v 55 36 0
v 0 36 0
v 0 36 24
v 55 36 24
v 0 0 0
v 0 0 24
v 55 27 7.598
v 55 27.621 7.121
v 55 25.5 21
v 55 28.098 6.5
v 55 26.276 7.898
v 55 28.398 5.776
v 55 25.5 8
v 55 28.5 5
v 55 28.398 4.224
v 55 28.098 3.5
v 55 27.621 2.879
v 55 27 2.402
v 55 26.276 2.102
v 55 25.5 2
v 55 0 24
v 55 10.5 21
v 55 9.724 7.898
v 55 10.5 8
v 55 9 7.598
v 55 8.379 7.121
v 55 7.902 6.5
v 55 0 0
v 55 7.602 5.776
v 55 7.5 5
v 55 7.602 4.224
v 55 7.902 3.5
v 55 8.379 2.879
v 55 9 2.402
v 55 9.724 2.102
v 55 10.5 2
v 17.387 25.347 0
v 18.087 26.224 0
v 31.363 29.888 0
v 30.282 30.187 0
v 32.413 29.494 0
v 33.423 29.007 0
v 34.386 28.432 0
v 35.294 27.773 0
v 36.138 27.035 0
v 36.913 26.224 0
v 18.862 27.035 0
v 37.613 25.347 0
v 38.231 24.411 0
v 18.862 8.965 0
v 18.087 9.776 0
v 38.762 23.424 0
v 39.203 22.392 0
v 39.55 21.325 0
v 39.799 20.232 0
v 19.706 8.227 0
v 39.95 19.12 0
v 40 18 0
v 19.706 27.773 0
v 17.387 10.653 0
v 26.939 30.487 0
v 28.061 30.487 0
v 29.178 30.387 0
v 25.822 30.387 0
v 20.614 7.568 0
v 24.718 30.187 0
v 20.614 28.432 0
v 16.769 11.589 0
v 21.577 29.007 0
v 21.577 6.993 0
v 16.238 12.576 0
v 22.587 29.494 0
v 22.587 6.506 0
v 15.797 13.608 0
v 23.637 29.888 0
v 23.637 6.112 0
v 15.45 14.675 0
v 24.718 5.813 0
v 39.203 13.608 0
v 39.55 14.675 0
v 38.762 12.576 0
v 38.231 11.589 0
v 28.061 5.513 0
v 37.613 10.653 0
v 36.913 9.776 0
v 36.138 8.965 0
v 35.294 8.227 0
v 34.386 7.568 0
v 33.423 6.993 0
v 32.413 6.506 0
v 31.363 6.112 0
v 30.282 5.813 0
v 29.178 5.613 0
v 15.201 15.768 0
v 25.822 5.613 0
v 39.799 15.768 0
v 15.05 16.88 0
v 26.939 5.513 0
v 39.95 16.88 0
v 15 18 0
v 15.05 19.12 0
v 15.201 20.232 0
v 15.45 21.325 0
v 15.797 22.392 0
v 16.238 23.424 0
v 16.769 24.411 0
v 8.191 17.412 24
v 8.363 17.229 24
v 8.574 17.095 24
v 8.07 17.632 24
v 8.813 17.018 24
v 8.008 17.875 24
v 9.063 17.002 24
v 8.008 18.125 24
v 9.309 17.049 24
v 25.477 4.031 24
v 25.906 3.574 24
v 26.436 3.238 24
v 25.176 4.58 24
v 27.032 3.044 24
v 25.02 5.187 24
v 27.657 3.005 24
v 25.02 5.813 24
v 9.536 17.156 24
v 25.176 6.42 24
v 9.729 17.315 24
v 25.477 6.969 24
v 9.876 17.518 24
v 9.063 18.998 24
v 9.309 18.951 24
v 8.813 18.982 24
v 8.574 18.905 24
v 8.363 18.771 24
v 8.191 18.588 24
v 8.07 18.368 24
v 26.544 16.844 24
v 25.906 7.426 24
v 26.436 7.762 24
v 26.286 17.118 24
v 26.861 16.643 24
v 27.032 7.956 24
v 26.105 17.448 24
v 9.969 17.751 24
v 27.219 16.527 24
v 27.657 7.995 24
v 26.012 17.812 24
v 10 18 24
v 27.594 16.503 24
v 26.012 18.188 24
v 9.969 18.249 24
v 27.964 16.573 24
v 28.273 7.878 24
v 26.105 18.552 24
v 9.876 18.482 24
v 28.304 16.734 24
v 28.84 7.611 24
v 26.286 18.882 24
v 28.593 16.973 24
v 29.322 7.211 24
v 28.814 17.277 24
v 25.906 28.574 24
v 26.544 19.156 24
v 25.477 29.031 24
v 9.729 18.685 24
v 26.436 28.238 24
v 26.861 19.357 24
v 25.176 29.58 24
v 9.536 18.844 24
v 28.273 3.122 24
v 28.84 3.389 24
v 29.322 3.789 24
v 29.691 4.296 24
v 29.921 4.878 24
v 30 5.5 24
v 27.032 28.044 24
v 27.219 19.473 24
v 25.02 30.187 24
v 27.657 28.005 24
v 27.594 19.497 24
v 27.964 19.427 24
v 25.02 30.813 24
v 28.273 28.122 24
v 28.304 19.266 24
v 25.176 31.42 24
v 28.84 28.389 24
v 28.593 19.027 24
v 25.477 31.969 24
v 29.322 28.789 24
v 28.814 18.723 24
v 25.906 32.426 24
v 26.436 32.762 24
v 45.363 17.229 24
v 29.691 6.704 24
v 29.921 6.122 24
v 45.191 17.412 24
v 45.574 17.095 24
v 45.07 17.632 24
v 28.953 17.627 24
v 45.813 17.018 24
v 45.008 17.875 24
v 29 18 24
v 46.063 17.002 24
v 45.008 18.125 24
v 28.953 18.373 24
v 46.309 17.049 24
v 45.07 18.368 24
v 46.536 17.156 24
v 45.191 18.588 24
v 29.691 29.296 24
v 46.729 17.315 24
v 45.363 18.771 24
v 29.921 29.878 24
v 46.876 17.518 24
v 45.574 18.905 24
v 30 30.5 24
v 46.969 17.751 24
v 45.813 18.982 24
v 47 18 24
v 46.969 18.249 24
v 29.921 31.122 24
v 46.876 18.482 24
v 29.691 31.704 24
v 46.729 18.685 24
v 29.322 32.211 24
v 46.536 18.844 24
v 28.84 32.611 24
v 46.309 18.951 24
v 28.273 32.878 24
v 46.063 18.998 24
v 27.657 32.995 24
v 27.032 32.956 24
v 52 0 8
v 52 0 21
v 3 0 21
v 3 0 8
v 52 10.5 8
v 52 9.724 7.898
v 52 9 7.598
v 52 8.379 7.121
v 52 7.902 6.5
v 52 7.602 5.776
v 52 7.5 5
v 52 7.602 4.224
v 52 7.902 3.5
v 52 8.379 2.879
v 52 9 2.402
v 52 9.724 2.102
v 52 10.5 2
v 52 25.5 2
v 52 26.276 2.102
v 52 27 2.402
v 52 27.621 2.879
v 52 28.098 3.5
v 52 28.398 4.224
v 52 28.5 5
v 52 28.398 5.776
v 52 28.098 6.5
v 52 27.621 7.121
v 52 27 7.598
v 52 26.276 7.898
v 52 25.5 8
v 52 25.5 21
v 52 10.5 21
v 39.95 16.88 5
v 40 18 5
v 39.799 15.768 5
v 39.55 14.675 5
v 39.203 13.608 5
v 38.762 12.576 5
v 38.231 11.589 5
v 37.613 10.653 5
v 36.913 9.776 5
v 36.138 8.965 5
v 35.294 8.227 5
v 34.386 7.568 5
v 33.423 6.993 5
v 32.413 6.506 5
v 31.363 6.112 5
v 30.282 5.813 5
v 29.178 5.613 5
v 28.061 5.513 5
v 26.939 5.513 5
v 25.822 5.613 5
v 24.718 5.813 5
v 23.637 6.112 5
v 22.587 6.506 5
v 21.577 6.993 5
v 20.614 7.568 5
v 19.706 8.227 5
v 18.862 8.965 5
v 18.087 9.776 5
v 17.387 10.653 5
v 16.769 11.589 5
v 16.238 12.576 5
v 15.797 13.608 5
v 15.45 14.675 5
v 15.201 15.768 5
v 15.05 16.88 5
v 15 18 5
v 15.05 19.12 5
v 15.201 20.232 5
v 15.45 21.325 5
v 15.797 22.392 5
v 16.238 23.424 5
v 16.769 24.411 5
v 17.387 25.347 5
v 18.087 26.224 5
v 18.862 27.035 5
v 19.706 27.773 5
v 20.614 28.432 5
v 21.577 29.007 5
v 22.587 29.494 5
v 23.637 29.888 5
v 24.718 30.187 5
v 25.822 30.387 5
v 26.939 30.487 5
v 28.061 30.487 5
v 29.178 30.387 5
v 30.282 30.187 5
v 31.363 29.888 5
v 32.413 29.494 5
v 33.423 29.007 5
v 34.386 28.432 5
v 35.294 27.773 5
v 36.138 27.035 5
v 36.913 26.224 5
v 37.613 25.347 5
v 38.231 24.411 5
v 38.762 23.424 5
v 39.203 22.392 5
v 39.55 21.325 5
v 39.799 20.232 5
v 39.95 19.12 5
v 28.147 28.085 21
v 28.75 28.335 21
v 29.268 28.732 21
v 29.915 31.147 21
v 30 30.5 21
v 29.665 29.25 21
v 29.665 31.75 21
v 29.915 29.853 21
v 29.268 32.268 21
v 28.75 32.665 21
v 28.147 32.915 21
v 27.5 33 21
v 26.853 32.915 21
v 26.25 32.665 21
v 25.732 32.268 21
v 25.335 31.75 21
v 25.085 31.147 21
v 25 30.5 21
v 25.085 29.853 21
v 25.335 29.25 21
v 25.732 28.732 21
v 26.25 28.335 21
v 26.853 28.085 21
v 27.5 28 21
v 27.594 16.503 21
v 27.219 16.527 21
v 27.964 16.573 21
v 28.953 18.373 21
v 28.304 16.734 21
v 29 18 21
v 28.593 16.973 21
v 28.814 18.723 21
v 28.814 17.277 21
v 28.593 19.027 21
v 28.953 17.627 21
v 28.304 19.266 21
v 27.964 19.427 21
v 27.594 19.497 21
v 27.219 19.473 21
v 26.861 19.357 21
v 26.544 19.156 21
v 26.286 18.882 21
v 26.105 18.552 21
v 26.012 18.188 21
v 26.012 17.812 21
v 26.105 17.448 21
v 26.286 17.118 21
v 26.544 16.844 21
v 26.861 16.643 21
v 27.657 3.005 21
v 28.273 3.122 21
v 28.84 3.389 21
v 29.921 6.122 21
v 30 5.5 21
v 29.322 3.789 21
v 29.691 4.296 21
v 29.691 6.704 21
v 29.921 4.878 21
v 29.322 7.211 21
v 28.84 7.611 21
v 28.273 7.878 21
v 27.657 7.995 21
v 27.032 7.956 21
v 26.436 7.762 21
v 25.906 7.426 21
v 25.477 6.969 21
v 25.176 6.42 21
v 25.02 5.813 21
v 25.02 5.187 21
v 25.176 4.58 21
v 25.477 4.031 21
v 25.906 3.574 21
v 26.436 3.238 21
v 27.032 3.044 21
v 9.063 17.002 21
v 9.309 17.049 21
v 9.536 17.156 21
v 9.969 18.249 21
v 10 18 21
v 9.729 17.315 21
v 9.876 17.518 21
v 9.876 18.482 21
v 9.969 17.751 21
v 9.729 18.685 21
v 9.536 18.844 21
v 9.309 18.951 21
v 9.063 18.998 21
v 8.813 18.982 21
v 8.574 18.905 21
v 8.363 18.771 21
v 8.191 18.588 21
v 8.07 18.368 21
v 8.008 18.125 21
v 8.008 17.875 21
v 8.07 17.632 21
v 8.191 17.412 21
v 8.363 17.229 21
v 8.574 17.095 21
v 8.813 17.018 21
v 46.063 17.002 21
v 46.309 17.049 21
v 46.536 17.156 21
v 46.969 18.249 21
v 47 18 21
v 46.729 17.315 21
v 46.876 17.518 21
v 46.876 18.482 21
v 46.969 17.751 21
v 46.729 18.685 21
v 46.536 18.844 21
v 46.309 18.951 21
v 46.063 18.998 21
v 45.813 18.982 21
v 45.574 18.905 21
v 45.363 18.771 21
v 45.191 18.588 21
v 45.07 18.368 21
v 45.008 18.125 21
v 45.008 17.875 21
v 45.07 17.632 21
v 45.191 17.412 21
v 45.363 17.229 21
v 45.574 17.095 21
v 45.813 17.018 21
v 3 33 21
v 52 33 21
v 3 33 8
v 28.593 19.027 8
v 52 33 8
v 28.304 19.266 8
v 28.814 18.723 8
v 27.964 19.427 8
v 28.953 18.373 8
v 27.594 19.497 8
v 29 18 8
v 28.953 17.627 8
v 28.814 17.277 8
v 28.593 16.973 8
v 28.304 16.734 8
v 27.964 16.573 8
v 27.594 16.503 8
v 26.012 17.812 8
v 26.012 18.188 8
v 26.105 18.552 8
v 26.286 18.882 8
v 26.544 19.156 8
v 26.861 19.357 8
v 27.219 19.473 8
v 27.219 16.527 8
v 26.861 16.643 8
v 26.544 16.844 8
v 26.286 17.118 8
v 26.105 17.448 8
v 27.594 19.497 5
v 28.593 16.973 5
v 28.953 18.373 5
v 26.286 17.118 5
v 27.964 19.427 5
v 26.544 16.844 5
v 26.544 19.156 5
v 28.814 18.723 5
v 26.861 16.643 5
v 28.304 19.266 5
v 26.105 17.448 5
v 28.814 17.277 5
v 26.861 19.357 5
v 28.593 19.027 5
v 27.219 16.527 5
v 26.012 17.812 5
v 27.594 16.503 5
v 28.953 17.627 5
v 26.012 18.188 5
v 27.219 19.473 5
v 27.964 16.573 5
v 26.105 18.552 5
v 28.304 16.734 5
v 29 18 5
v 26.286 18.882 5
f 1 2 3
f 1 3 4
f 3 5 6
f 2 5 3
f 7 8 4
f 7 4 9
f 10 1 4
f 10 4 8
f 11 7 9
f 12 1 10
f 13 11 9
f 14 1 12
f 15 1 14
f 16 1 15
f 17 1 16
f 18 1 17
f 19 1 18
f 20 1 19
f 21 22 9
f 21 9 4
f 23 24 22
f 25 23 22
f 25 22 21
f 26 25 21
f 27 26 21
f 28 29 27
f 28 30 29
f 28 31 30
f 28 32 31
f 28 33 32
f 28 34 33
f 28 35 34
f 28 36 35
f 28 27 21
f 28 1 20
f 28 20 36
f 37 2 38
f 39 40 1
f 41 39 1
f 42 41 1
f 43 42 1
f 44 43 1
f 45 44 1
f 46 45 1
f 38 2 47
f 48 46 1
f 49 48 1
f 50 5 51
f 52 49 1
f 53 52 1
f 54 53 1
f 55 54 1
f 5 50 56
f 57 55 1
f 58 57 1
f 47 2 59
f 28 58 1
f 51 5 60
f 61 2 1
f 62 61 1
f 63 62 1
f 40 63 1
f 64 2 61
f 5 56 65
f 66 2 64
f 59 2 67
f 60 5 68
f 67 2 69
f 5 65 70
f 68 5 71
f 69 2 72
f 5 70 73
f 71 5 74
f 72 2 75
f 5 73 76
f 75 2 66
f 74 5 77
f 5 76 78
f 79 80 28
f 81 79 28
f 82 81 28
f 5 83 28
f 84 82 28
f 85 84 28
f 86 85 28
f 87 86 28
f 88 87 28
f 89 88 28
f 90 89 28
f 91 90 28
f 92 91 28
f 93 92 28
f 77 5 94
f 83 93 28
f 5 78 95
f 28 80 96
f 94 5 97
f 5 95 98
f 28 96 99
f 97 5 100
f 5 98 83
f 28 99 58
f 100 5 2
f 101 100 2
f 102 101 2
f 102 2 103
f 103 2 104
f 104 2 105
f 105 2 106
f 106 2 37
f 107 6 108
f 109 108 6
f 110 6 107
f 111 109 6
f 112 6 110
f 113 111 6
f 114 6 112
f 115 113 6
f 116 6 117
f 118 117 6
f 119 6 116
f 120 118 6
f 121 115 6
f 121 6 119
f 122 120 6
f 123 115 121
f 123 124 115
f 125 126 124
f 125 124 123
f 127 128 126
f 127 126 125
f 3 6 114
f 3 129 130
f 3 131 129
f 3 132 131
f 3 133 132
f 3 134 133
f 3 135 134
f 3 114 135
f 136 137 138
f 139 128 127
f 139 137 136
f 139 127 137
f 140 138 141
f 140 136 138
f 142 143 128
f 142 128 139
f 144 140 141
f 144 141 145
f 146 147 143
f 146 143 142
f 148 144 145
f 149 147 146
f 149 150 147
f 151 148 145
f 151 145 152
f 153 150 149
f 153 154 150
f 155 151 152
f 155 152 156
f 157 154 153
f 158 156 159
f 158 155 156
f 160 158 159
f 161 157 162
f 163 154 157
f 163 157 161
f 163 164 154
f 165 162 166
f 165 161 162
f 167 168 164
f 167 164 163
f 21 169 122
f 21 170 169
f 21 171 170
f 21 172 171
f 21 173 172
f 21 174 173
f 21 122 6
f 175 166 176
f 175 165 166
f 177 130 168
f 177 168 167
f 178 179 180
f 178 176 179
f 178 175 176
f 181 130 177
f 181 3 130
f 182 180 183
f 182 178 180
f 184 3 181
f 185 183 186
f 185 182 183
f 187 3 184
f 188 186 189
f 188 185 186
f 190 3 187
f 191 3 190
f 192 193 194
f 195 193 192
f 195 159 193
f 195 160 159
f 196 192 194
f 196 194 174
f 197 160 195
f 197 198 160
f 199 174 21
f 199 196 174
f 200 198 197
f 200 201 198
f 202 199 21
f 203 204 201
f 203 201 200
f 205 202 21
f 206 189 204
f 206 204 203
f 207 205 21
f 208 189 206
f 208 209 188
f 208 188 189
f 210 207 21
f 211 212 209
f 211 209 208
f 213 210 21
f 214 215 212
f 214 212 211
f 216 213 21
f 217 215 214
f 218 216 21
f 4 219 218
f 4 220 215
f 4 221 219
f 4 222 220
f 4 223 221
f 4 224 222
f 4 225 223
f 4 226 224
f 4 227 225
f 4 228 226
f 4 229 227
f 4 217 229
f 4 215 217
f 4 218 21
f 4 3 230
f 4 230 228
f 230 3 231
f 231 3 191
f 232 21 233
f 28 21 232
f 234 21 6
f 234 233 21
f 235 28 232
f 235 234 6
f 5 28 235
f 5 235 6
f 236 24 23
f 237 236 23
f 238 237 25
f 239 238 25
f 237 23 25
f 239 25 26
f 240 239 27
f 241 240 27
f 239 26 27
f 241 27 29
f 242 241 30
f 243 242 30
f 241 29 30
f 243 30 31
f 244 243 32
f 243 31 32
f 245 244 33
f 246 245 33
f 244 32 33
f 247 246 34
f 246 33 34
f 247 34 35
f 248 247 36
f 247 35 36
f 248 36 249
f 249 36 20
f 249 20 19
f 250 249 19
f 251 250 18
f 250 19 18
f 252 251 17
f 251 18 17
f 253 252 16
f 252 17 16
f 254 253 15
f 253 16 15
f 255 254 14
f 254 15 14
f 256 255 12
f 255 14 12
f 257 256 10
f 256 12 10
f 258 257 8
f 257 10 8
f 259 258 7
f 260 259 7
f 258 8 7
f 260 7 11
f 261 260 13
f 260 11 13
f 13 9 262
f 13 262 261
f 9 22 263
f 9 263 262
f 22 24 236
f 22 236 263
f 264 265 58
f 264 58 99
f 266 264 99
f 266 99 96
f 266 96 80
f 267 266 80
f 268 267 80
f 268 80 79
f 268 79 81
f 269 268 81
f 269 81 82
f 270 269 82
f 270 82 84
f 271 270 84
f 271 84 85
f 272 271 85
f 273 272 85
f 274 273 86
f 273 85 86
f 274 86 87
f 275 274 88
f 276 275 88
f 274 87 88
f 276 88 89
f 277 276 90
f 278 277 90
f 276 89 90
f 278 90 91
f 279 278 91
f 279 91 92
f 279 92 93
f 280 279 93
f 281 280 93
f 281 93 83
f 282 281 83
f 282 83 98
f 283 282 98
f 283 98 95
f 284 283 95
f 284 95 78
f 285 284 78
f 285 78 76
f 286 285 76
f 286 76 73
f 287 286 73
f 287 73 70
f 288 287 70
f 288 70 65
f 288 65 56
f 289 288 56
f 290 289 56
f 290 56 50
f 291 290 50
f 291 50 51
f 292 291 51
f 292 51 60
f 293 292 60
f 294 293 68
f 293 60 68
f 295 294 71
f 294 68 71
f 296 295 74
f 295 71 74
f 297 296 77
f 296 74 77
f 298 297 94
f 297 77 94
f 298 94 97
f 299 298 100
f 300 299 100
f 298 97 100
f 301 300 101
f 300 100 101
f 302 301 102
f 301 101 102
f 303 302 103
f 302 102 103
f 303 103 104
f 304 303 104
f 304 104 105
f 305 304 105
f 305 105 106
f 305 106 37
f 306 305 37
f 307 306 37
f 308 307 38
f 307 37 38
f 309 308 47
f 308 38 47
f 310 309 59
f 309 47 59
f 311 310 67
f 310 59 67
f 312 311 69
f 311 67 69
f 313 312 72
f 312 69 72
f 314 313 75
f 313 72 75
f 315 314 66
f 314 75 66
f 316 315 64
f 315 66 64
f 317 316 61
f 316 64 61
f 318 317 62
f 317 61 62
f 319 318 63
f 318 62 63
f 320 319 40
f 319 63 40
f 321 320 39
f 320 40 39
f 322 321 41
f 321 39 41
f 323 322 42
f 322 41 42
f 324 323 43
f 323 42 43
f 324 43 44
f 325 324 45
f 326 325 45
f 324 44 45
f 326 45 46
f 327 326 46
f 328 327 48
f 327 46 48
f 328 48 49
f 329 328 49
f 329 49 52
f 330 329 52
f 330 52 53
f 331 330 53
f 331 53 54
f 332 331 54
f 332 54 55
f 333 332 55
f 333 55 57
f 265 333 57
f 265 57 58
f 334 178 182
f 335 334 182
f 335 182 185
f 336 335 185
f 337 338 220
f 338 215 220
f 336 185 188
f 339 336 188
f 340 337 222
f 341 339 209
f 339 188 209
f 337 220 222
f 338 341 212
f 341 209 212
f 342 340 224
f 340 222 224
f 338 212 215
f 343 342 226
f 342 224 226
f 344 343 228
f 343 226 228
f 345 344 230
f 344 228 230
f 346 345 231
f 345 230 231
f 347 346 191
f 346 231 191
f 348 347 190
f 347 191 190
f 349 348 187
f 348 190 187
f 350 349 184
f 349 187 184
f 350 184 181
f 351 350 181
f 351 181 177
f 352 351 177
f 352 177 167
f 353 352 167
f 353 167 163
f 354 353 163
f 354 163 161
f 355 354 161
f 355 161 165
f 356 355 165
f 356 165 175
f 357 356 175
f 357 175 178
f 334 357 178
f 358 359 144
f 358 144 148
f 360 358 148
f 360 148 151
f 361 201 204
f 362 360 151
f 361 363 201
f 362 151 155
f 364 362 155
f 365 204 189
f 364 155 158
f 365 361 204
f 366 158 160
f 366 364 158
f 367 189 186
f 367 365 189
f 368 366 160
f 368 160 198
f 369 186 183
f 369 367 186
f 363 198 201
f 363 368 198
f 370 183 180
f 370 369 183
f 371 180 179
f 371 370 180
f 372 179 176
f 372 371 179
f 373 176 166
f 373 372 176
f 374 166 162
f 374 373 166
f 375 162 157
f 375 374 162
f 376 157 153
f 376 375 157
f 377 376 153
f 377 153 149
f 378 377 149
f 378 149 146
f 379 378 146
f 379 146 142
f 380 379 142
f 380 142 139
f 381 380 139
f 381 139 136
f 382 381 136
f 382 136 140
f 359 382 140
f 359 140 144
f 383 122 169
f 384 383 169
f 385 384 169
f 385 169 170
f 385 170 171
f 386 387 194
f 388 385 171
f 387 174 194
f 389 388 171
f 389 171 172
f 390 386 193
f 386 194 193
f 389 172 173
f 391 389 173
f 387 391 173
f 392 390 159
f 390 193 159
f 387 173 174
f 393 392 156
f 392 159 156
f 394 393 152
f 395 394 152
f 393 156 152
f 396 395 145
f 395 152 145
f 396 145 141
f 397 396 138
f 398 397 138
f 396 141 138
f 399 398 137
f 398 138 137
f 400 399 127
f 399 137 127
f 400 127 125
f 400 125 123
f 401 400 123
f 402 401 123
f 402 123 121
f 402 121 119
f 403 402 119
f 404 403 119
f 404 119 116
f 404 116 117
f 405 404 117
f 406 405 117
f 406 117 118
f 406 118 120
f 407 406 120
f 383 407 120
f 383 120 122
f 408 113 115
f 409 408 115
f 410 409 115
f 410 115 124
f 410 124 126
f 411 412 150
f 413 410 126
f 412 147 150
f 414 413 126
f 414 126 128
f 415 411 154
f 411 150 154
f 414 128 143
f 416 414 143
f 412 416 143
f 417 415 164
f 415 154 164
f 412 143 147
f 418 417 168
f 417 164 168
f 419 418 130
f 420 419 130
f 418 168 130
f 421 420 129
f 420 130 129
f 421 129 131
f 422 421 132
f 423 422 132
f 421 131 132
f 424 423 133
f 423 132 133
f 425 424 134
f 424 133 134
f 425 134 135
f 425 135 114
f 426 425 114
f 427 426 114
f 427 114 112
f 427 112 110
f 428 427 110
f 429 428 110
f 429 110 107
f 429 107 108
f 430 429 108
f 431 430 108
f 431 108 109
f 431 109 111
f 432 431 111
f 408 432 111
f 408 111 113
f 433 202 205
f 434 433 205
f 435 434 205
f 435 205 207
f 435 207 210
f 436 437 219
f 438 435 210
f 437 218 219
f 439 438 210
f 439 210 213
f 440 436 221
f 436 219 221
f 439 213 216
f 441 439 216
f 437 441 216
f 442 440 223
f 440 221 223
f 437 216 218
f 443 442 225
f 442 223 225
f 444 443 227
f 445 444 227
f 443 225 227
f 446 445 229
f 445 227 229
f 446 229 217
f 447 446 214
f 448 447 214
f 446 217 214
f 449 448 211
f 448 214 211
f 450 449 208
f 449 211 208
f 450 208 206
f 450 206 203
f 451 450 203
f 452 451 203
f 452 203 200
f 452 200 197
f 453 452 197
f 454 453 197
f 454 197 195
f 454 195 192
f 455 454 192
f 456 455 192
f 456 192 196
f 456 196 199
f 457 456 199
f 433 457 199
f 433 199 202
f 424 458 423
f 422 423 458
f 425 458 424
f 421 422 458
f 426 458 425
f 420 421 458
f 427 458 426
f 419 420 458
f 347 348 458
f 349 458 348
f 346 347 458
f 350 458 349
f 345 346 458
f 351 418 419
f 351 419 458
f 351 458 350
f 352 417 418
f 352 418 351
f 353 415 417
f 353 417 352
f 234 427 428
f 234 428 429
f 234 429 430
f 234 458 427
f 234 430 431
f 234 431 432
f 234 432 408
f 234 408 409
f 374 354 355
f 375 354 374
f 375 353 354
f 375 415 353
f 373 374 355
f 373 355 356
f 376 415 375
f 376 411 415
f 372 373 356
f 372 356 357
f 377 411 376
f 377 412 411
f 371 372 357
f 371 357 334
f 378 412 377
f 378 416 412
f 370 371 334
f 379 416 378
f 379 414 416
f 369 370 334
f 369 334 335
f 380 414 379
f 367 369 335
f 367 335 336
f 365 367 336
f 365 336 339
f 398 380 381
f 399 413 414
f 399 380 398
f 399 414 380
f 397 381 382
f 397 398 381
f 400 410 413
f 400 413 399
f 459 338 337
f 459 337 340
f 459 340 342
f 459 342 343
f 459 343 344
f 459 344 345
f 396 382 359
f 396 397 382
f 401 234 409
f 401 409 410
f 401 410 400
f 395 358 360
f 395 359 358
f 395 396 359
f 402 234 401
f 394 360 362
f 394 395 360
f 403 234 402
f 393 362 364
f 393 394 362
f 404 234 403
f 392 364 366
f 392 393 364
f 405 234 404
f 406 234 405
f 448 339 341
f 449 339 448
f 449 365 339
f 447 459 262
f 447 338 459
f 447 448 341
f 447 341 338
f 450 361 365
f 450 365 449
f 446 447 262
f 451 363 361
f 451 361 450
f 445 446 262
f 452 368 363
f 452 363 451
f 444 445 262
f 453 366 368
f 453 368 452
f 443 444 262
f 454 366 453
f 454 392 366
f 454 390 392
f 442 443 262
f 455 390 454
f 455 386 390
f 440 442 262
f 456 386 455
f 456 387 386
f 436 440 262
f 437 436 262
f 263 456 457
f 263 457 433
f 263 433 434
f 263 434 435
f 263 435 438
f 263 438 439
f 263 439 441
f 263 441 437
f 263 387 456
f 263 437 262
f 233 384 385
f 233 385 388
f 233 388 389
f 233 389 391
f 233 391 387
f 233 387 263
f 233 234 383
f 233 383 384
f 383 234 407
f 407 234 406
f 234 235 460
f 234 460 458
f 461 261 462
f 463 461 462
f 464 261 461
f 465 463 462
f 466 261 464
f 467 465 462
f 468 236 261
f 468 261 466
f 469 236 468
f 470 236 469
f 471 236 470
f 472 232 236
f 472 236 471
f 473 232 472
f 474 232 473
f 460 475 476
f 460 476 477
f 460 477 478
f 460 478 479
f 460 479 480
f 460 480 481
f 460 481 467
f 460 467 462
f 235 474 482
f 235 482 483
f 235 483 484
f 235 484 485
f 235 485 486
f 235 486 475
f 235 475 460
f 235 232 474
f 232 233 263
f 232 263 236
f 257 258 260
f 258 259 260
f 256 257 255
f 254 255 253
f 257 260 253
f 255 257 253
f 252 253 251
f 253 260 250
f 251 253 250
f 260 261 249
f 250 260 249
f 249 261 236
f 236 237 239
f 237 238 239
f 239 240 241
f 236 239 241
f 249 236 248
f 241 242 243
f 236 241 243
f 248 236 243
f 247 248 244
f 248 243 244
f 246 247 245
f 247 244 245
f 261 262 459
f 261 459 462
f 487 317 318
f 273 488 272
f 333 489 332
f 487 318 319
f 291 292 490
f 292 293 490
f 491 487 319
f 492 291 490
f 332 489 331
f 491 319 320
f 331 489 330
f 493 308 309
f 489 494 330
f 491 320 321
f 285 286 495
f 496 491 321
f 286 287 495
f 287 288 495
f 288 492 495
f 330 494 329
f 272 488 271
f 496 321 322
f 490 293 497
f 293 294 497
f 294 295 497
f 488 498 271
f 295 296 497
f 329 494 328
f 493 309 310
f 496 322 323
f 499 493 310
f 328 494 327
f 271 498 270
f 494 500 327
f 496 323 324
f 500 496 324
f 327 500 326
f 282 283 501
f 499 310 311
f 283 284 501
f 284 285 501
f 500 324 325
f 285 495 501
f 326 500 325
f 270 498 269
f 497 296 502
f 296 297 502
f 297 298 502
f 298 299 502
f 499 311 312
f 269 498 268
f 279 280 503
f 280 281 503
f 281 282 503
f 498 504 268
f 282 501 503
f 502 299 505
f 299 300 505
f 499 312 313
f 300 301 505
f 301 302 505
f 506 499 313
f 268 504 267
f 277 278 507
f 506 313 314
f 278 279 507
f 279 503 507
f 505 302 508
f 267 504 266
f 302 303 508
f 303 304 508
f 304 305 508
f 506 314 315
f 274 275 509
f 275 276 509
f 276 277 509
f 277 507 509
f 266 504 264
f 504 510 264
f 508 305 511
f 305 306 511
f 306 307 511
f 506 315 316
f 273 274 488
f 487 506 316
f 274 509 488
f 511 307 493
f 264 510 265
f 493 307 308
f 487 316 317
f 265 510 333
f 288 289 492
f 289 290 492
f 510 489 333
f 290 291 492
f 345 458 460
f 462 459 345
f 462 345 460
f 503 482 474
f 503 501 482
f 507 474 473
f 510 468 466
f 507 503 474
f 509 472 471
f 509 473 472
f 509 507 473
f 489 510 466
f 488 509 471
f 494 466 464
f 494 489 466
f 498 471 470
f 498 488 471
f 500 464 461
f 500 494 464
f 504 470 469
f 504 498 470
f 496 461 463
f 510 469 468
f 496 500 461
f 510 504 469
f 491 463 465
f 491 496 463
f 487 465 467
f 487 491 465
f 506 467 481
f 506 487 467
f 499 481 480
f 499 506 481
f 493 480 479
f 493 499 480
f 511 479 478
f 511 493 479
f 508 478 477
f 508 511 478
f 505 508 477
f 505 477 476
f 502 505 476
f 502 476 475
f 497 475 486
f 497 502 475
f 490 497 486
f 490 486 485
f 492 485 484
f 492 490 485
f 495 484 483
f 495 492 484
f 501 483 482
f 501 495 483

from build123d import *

# Parameters (mm, degrees)
SKETCH_W        = 55
SKETCH_H        = 36
SKETCH_R        = 1.5
PAD_DEPTH       = 24
SKETCH001_R     = 12.5
POCKET_DEPTH    = 5
SKETCH002_W     = 49
SKETCH002_H     = 13
POCKET001_DEPTH = 33
SKETCH003_R     = 1
SKETCH003_R_2   = 2.5
POCKET002_DEPTH = 3
SKETCH004_W     = 15
SKETCH004_H     = 13
POCKET003_DEPTH = 3
POCKET004_DEPTH = 3


with BuildPart() as part:
    # Sketch → Pad (new body)
    with BuildSketch(Plane.XY):
        with Locations((27.5, 18)):
            Rectangle(SKETCH_W, SKETCH_H)
        with Locations((27.5, 18)):
            Circle(SKETCH_R, mode=Mode.SUBTRACT)
    extrude(amount=PAD_DEPTH)

    # Sketch001 → Pocket (cut)
    with BuildSketch(Plane(origin=(0, 0, 0), x_dir=(1, 0, 0), z_dir=(0, 0, -1))):
        with Locations((27.5, -18)):
            Circle(SKETCH001_R)
    extrude(amount=-POCKET_DEPTH, mode=Mode.SUBTRACT)

    # Sketch002 → Pocket001 (cut)
    with BuildSketch(Plane.XZ):
        with Locations((27.5, 14.5)):
            Rectangle(SKETCH002_W, SKETCH002_H)
    extrude(amount=-POCKET001_DEPTH, mode=Mode.SUBTRACT)

    # Sketch003 → Pocket002 (cut)
    with BuildSketch(Plane.XY.offset(24)):
        with Locations((9, 18)):
            Circle(SKETCH003_R)
        with Locations((46, 18)):
            Circle(SKETCH003_R)
        with Locations((27.5, 30.5)):
            Circle(SKETCH003_R_2)
        with Locations((27.5, 5.5)):
            Circle(SKETCH003_R_2)
    extrude(amount=-POCKET002_DEPTH, mode=Mode.SUBTRACT)

    # Sketch004 → Pocket003 (cut)
    with BuildSketch(Plane.YZ.offset(55)):
        with Locations((18, 14.5)):
            Rectangle(SKETCH004_W, SKETCH004_H)
    extrude(amount=-POCKET003_DEPTH, mode=Mode.SUBTRACT)

    # Sketch005 → Pocket004 (cut)
    with BuildSketch(Plane.YZ.offset(55)):
        with BuildLine():
            ThreePointArc((10.5, 8), (7.5, 5), (10.5, 2))
            Line((10.5, 2), (25.5, 2))
            ThreePointArc((25.5, 2), (28.5, 5), (25.5, 8))
            Line((10.5, 8), (25.5, 8))
        make_face()
    extrude(amount=-POCKET004_DEPTH, mode=Mode.SUBTRACT)


solid = part.part
